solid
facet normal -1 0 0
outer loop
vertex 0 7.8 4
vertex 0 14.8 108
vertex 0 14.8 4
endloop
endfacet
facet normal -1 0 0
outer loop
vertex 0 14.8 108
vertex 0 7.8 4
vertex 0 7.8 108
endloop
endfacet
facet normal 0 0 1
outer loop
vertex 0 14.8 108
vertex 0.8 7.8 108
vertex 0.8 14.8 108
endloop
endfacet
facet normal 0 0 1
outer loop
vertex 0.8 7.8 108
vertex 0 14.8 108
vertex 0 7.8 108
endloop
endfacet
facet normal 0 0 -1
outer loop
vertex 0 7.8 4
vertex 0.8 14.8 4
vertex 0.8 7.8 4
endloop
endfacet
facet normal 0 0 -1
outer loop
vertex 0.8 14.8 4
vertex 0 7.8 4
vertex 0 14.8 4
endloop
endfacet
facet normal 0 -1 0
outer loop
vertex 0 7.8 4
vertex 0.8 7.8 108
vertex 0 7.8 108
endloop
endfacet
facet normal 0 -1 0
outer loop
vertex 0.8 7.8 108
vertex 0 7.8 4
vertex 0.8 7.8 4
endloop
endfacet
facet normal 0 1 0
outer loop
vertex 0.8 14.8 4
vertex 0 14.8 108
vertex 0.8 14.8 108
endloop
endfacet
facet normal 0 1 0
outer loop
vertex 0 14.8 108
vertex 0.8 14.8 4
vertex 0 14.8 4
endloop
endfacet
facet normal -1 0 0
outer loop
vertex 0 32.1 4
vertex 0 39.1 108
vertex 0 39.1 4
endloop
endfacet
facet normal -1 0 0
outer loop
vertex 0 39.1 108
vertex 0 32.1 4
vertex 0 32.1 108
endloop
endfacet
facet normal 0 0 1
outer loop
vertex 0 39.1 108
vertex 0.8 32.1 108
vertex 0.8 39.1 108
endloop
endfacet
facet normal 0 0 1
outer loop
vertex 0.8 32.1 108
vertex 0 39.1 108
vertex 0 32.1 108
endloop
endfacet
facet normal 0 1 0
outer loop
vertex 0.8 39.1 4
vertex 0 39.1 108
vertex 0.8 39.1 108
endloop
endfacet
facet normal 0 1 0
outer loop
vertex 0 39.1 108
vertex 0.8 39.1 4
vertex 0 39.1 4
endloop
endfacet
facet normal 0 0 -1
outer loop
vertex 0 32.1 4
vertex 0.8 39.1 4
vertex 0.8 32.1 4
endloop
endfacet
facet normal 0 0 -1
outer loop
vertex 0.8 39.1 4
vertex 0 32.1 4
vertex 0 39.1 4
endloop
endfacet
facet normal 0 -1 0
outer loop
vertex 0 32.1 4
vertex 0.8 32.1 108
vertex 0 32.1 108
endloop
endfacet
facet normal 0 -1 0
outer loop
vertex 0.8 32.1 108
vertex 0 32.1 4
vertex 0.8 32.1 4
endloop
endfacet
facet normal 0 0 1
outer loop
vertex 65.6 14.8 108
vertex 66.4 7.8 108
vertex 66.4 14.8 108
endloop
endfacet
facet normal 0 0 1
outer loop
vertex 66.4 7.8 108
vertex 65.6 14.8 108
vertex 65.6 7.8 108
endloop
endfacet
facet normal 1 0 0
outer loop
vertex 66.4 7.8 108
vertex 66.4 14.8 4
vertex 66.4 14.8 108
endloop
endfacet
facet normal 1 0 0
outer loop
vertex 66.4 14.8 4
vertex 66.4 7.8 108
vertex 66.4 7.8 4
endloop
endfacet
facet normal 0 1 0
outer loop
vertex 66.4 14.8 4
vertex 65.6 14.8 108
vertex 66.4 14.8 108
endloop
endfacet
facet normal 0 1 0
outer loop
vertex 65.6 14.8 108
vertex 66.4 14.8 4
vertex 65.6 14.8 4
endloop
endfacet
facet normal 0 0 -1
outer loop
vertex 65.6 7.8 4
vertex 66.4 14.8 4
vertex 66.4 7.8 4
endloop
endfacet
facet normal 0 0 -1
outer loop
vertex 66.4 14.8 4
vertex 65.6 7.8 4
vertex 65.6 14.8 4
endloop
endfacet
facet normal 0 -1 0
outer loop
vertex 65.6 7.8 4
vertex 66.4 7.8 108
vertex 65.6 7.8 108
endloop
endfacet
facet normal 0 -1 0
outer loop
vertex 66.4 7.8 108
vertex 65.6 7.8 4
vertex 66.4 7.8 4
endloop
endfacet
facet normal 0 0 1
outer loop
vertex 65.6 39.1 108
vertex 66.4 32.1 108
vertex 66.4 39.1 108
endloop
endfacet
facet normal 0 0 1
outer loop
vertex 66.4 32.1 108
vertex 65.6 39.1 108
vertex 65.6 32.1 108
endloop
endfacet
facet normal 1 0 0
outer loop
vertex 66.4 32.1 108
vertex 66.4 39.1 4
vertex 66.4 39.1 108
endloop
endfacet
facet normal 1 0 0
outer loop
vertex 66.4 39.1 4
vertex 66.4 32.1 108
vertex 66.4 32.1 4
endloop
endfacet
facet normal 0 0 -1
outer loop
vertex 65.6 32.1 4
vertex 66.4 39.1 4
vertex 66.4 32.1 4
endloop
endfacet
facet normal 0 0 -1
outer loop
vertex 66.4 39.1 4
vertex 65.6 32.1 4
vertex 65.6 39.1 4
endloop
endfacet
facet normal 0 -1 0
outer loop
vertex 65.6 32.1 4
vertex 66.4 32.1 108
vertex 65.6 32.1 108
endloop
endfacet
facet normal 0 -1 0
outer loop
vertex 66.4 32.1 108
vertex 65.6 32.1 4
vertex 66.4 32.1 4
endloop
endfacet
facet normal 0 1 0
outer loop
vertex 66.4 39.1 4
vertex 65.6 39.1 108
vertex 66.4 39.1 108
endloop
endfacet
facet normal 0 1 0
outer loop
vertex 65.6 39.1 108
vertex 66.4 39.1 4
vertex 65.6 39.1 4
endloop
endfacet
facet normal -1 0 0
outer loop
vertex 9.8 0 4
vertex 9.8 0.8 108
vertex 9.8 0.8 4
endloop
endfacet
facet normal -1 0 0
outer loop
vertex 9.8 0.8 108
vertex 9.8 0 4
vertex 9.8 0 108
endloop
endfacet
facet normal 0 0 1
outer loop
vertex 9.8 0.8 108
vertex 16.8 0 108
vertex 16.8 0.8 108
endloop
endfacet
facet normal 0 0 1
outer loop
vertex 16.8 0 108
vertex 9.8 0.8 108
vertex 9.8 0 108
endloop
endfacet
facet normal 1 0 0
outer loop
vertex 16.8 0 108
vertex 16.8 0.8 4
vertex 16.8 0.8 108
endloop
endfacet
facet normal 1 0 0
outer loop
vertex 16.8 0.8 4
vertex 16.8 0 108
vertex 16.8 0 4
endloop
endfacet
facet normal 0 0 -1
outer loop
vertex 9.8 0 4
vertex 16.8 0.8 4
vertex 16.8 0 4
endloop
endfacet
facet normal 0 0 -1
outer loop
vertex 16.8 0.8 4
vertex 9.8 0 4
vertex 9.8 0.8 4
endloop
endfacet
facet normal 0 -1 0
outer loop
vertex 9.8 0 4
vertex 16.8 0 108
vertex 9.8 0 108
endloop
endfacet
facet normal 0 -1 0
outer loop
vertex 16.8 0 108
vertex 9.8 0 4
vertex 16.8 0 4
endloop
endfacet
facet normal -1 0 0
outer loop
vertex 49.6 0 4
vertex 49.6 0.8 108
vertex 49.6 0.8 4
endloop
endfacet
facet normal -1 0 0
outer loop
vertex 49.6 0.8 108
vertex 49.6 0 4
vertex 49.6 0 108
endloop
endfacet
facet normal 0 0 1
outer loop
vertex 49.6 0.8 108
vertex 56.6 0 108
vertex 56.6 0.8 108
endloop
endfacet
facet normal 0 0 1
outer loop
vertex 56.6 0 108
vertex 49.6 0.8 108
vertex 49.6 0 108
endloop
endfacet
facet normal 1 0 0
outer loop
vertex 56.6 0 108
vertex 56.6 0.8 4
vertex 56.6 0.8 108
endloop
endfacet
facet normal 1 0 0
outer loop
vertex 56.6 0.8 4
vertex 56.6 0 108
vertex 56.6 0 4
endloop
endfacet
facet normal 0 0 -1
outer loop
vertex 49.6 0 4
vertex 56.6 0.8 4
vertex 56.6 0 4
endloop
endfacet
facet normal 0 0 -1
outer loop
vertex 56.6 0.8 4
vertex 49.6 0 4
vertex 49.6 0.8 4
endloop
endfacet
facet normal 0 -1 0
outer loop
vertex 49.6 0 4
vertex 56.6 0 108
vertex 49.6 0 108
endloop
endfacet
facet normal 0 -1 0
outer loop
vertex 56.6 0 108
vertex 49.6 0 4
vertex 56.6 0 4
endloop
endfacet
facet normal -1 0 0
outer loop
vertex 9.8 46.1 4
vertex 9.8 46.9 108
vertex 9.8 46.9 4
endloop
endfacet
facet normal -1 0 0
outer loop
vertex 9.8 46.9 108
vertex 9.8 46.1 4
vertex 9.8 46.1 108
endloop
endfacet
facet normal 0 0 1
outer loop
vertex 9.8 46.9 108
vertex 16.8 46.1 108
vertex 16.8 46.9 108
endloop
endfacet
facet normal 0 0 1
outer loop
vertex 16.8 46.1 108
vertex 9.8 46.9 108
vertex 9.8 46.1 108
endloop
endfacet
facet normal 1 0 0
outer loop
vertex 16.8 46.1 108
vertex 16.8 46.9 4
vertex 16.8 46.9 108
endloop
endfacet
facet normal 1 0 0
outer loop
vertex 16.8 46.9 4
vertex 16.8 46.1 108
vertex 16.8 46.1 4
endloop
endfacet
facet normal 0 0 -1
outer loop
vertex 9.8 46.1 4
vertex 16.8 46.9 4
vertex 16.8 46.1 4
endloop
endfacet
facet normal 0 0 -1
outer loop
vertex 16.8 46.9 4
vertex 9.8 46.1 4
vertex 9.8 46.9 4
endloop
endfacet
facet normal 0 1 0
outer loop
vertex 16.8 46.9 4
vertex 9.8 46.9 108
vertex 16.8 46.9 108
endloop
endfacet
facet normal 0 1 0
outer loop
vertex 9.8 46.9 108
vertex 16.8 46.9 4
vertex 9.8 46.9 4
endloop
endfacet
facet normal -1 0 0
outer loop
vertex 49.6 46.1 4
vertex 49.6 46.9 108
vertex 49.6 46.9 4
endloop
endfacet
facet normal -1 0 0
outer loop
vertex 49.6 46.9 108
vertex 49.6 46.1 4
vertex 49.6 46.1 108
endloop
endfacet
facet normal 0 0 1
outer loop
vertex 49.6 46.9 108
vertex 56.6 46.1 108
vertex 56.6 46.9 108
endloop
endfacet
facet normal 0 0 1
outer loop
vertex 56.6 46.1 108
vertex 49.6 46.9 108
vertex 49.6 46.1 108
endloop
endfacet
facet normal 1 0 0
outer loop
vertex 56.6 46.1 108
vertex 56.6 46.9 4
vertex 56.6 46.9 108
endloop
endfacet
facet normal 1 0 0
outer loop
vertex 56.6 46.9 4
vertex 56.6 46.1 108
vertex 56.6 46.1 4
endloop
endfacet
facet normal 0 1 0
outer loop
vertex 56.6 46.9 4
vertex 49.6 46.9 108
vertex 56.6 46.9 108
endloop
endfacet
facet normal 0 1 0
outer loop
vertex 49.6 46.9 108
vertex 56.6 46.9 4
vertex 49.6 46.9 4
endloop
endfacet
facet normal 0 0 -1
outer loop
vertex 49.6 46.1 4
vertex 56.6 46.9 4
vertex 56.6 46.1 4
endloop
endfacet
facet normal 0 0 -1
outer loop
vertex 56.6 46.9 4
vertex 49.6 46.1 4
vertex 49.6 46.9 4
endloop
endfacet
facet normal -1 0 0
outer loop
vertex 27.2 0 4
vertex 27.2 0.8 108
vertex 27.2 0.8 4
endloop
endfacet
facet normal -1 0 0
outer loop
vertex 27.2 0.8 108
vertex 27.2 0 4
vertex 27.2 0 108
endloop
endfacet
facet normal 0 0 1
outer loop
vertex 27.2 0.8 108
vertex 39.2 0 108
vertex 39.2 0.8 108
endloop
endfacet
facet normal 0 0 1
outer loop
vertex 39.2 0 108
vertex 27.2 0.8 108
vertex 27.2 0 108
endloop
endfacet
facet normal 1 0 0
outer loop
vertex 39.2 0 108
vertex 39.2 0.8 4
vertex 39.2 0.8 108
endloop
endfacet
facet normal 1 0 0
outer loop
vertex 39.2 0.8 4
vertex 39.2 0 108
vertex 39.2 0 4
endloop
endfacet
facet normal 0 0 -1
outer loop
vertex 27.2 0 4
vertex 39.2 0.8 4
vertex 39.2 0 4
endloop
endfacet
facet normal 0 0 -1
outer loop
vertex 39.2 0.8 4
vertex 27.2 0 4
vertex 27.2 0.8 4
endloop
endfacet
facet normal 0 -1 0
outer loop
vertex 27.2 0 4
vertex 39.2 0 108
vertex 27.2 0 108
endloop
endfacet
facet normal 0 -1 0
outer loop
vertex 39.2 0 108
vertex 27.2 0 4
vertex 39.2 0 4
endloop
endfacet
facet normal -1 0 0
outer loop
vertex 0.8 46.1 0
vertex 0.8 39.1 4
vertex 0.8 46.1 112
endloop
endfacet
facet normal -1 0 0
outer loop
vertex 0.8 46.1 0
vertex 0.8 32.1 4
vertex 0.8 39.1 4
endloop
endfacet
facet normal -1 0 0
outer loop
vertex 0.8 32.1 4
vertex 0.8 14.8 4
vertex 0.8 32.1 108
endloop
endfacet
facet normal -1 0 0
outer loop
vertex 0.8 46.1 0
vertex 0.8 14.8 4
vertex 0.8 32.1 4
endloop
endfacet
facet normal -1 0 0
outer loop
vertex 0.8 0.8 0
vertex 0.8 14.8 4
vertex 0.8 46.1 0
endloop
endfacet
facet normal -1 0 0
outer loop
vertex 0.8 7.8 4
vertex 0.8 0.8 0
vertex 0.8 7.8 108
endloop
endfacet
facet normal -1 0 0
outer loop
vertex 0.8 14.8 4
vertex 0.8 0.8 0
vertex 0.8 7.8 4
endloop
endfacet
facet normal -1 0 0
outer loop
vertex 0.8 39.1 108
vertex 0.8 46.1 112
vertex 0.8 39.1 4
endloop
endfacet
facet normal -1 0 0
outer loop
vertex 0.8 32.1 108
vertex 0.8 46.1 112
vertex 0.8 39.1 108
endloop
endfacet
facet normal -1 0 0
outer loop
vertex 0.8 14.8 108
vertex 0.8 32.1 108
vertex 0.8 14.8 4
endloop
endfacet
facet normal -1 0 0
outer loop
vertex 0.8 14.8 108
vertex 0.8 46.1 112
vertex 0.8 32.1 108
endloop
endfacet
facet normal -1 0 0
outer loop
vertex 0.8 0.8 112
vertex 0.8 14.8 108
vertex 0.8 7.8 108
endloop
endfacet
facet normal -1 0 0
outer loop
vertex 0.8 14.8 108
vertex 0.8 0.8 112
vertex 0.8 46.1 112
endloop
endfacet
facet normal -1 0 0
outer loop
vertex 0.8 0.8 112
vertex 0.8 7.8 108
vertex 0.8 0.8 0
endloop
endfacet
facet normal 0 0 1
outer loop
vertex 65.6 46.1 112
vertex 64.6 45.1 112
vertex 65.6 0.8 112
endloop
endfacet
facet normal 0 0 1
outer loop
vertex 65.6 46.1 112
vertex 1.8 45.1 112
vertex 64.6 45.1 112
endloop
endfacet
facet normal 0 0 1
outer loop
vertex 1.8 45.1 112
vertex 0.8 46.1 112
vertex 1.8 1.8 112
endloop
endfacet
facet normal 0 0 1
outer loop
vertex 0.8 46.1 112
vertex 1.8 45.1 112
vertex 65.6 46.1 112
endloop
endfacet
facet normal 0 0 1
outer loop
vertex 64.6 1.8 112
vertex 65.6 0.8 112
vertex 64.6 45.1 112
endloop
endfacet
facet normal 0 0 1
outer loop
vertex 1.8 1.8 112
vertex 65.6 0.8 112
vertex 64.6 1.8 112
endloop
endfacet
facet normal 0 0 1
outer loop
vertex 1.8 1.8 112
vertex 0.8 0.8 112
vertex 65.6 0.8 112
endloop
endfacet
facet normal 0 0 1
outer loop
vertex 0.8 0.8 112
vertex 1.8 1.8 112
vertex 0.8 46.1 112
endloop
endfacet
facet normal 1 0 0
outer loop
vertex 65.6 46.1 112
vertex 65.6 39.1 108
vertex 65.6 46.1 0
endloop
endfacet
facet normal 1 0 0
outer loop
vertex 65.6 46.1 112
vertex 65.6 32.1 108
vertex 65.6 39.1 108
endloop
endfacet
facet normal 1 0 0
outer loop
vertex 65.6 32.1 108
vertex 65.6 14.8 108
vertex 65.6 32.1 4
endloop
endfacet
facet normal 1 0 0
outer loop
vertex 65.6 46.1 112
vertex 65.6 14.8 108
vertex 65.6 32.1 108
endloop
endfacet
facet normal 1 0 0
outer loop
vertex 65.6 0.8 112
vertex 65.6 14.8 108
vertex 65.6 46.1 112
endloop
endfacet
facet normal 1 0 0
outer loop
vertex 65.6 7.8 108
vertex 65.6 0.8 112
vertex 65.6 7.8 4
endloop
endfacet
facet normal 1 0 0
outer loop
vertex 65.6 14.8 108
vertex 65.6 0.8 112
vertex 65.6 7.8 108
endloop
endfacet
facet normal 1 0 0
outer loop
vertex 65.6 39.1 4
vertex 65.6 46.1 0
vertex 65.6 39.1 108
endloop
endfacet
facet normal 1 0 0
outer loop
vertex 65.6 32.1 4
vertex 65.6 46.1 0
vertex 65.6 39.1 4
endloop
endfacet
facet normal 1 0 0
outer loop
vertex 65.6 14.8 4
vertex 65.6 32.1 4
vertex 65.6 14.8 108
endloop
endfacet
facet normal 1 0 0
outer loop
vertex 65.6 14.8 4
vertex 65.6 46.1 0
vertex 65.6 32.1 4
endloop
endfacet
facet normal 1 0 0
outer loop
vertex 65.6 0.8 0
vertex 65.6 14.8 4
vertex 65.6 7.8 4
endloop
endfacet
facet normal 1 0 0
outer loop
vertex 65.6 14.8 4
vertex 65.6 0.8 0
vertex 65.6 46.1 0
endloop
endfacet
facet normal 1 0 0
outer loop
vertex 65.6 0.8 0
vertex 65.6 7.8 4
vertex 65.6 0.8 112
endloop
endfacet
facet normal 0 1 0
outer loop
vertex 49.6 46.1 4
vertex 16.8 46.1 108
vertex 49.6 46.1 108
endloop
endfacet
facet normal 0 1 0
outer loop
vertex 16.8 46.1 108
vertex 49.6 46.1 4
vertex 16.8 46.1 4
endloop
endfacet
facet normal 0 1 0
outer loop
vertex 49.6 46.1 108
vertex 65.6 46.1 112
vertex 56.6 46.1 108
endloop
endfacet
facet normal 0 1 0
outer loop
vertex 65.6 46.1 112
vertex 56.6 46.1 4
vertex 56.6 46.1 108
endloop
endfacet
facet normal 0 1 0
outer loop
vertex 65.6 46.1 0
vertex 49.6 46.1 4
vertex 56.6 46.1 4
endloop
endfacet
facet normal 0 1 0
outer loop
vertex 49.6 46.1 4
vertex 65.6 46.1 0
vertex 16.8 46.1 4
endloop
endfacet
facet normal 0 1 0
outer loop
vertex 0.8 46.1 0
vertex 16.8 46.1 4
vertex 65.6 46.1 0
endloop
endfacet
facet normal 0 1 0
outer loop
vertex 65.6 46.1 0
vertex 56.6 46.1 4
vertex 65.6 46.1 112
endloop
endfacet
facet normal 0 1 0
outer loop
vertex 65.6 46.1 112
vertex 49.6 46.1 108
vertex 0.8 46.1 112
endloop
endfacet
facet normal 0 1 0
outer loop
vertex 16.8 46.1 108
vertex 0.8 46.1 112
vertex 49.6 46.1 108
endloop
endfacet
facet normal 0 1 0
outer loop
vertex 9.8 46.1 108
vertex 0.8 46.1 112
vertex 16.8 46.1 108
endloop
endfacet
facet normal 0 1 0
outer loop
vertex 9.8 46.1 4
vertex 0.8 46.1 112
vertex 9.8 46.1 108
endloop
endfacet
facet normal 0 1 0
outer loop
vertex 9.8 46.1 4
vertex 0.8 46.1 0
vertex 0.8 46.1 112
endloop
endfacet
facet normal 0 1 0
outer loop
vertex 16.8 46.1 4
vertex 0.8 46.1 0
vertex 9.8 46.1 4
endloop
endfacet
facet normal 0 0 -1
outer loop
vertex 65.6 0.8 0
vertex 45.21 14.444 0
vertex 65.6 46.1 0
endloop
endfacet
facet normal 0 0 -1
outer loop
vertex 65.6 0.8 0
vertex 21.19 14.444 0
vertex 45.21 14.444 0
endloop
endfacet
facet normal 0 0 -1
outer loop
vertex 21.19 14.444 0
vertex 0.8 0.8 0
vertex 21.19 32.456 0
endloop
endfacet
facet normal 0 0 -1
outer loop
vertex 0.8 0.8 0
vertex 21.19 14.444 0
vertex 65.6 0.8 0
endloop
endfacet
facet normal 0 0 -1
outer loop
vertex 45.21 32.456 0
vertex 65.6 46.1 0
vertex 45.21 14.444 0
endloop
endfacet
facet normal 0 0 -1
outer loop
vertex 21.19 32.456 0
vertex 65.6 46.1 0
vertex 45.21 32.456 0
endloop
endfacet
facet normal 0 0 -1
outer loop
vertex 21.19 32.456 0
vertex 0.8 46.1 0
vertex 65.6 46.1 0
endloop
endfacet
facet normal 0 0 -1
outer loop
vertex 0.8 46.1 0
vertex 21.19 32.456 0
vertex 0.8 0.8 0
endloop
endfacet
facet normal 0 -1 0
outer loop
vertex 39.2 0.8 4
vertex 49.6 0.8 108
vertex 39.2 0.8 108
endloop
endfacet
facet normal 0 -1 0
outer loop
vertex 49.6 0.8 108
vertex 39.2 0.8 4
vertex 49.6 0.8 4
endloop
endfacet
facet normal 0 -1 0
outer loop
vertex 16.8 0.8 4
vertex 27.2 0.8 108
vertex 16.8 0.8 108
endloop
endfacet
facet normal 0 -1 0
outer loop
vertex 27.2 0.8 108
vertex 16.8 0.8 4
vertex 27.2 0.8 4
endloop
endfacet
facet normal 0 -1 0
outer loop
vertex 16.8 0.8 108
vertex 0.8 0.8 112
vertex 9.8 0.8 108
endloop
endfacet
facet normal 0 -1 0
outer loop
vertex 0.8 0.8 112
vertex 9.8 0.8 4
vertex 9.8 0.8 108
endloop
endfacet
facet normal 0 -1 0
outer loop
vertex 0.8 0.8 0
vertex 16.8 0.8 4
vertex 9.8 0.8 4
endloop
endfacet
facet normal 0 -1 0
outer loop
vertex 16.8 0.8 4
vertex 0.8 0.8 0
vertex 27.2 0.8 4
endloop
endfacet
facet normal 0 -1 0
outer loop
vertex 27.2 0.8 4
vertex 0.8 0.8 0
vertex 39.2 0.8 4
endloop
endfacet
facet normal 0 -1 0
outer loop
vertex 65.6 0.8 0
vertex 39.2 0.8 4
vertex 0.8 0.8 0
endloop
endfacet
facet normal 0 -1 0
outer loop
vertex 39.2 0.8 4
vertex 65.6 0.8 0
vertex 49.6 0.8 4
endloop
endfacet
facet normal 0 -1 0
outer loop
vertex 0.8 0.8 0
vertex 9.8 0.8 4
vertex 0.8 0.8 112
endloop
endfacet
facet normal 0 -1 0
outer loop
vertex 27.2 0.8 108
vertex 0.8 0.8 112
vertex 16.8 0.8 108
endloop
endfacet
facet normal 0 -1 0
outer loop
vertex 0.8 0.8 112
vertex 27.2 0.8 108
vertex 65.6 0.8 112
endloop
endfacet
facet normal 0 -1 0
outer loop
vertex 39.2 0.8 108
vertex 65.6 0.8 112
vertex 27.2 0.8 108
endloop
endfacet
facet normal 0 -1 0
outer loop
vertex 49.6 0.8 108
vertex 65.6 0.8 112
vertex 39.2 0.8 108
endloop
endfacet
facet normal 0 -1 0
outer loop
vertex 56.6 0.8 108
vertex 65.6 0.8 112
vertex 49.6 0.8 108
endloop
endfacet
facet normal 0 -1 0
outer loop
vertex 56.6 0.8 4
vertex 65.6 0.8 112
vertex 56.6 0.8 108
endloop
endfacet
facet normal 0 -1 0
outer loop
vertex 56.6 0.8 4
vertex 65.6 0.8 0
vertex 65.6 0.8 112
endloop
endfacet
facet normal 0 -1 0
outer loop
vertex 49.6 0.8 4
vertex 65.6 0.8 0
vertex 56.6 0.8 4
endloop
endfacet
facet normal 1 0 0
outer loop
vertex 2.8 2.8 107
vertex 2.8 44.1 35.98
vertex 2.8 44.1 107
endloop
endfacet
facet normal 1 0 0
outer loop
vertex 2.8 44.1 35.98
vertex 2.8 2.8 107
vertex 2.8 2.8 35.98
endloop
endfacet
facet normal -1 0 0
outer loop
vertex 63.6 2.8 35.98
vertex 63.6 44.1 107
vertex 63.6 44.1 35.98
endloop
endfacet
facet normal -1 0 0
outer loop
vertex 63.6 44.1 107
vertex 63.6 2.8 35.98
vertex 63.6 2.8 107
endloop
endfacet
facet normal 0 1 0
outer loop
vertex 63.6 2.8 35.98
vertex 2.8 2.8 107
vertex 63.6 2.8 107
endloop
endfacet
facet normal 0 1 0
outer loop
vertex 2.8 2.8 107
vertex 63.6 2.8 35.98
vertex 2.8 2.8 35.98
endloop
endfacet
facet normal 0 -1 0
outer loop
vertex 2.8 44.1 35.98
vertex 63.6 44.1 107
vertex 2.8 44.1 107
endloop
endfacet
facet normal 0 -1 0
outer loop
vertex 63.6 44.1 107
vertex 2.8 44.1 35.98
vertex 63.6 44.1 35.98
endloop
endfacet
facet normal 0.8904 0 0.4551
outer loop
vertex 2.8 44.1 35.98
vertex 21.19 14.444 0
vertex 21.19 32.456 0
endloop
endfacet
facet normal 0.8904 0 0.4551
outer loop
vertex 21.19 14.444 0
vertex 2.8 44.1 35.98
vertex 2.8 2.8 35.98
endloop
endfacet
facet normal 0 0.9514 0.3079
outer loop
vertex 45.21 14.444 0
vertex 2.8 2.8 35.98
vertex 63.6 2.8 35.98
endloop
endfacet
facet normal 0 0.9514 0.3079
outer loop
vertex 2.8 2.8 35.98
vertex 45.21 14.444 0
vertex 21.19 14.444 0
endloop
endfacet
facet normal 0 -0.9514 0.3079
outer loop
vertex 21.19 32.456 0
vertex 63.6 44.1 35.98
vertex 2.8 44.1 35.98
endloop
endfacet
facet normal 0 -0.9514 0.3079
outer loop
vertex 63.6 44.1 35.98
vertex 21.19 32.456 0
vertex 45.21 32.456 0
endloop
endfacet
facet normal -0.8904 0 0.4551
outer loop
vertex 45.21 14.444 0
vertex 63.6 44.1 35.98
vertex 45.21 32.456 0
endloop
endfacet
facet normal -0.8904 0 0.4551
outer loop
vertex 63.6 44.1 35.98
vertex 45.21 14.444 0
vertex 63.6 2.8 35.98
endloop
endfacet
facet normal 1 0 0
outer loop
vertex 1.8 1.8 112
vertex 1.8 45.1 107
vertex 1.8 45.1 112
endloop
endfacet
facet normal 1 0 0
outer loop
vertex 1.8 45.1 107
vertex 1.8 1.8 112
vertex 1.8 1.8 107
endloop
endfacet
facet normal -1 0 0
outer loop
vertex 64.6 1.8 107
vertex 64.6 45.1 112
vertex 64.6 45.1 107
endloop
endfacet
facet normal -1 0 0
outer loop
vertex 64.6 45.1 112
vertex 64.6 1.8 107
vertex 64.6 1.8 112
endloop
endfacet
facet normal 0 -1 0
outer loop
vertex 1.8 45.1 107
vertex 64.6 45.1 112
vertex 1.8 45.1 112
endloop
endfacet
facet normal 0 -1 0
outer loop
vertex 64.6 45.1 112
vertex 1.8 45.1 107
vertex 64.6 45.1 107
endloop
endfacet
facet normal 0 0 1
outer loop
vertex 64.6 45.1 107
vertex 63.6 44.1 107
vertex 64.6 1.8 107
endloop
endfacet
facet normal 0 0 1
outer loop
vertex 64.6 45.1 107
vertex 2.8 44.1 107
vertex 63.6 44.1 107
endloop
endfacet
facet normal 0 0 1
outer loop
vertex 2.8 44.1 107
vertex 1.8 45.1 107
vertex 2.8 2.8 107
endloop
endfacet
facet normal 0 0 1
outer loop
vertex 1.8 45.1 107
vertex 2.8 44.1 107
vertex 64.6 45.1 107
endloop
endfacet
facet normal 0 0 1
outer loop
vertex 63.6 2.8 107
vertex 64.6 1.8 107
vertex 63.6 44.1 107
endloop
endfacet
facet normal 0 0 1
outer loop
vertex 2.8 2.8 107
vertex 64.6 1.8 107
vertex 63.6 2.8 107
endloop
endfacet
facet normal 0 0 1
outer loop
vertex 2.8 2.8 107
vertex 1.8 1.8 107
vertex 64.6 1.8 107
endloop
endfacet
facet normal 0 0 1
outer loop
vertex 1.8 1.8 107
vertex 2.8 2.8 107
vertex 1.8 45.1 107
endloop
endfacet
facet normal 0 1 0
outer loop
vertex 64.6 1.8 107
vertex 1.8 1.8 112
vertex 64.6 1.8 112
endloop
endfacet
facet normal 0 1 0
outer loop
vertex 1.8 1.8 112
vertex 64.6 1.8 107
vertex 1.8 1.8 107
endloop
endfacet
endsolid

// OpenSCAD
// 盲人取药机 - 配套公/母盒子框架的自由下落药匣
// 公盒子、母盒子作为外部导向框架；本药匣作为内部放药盒，
// 通过外侧竖向导向筋在框架内按 Z 轴方向自由下落。

frame_inner_w = 68;       // 公/母盒子内腔宽度：72 - 2 * 2
frame_inner_d = 48.5;     // 公/母盒子内腔深度：52.5 - 2 * 2

fall_clearance = 0.8;     // 每侧自由下落间隙，打印偏差较大时可加大
guide_t = 0.8;            // 导向筋凸出厚度
guide_w = 7;              // 导向筋在接触面上的宽度
guide_z_margin = 4;       // 导向筋上下避让，减少入口刮擦
rail_overlap = 0.2;       // 导向筋嵌入主体，保证不是贴面悬浮

cart_w = frame_inner_w - 2 * fall_clearance;  // 药匣最大外廓宽度
cart_d = frame_inner_d - 2 * fall_clearance;  // 药匣最大外廓深度
cart_h = 112;             // 药匣高度，低于 140mm 框架高度

core_w = cart_w - 2 * guide_t;
core_d = cart_d - 2 * guide_t;
wall = 2;                 // 药匣壁厚

funnel_h = 36;            // 内部漏斗高度
outlet_w = 24;            // 出药口宽度，适配 25mm 小抽屉
outlet_d = 18;            // 出药口深度

eps = 0.02;

core_x = guide_t;
core_y = guide_t;

inner_x = core_x + wall;
inner_y = core_y + wall;
inner_w = core_w - 2 * wall;
inner_d = core_d - 2 * wall;

outlet_x = (cart_w - outlet_w) / 2;
outlet_y = (cart_d - outlet_d) / 2;

guide_h = cart_h - 2 * guide_z_margin;

module core_body() {
    translate([core_x, core_y, 0])
        cube([core_w, core_d, cart_h], center=false);
}

module guide_rails() {
    // 左右两侧导向筋控制 X 方向间隙。
    translate([0, core_y + 7, guide_z_margin])
        cube([guide_t + rail_overlap, guide_w, guide_h], center=false);
    translate([0, core_y + core_d - 7 - guide_w, guide_z_margin])
        cube([guide_t + rail_overlap, guide_w, guide_h], center=false);

    translate([cart_w - guide_t - rail_overlap, core_y + 7, guide_z_margin])
        cube([guide_t + rail_overlap, guide_w, guide_h], center=false);
    translate([cart_w - guide_t - rail_overlap, core_y + core_d - 7 - guide_w, guide_z_margin])
        cube([guide_t + rail_overlap, guide_w, guide_h], center=false);

    // 前后两侧导向筋控制 Y 方向间隙。
    translate([core_x + 9, 0, guide_z_margin])
        cube([guide_w, guide_t + rail_overlap, guide_h], center=false);
    translate([core_x + core_w - 9 - guide_w, 0, guide_z_margin])
        cube([guide_w, guide_t + rail_overlap, guide_h], center=false);

    translate([core_x + 9, cart_d - guide_t - rail_overlap, guide_z_margin])
        cube([guide_w, guide_t + rail_overlap, guide_h], center=false);
    translate([core_x + core_w - 9 - guide_w, cart_d - guide_t - rail_overlap, guide_z_margin])
        cube([guide_w, guide_t + rail_overlap, guide_h], center=false);

    // 前面中间加一条较宽方向筋，方便辨认出药方向。
    translate([(cart_w - 12) / 2, 0, guide_z_margin])
        cube([12, guide_t + rail_overlap, guide_h], center=false);
}

module storage_void() {
    translate([inner_x, inner_y, funnel_h - eps])
        cube([inner_w, inner_d, cart_h - funnel_h + 2 * eps], center=false);
}

module gravity_funnel_void() {
    hull() {
        translate([inner_x, inner_y, funnel_h - eps])
            cube([inner_w, inner_d, eps], center=false);

        translate([outlet_x, outlet_y, -eps])
            cube([outlet_w, outlet_d, eps], center=false);
    }
}

module top_chamfer_void() {
    // 顶部内侧倒角，减少装药时卡在边缘。
    translate([inner_x - 1, inner_y - 1, cart_h - 5])
        cube([inner_w + 2, inner_d + 2, 6], center=false);
}

module medicine_cartridge() {
    difference() {
        union() {
            core_body();
            guide_rails();
        }

        storage_void();
        gravity_funnel_void();
        top_chamfer_void();
    }
}

medicine_cartridge();
